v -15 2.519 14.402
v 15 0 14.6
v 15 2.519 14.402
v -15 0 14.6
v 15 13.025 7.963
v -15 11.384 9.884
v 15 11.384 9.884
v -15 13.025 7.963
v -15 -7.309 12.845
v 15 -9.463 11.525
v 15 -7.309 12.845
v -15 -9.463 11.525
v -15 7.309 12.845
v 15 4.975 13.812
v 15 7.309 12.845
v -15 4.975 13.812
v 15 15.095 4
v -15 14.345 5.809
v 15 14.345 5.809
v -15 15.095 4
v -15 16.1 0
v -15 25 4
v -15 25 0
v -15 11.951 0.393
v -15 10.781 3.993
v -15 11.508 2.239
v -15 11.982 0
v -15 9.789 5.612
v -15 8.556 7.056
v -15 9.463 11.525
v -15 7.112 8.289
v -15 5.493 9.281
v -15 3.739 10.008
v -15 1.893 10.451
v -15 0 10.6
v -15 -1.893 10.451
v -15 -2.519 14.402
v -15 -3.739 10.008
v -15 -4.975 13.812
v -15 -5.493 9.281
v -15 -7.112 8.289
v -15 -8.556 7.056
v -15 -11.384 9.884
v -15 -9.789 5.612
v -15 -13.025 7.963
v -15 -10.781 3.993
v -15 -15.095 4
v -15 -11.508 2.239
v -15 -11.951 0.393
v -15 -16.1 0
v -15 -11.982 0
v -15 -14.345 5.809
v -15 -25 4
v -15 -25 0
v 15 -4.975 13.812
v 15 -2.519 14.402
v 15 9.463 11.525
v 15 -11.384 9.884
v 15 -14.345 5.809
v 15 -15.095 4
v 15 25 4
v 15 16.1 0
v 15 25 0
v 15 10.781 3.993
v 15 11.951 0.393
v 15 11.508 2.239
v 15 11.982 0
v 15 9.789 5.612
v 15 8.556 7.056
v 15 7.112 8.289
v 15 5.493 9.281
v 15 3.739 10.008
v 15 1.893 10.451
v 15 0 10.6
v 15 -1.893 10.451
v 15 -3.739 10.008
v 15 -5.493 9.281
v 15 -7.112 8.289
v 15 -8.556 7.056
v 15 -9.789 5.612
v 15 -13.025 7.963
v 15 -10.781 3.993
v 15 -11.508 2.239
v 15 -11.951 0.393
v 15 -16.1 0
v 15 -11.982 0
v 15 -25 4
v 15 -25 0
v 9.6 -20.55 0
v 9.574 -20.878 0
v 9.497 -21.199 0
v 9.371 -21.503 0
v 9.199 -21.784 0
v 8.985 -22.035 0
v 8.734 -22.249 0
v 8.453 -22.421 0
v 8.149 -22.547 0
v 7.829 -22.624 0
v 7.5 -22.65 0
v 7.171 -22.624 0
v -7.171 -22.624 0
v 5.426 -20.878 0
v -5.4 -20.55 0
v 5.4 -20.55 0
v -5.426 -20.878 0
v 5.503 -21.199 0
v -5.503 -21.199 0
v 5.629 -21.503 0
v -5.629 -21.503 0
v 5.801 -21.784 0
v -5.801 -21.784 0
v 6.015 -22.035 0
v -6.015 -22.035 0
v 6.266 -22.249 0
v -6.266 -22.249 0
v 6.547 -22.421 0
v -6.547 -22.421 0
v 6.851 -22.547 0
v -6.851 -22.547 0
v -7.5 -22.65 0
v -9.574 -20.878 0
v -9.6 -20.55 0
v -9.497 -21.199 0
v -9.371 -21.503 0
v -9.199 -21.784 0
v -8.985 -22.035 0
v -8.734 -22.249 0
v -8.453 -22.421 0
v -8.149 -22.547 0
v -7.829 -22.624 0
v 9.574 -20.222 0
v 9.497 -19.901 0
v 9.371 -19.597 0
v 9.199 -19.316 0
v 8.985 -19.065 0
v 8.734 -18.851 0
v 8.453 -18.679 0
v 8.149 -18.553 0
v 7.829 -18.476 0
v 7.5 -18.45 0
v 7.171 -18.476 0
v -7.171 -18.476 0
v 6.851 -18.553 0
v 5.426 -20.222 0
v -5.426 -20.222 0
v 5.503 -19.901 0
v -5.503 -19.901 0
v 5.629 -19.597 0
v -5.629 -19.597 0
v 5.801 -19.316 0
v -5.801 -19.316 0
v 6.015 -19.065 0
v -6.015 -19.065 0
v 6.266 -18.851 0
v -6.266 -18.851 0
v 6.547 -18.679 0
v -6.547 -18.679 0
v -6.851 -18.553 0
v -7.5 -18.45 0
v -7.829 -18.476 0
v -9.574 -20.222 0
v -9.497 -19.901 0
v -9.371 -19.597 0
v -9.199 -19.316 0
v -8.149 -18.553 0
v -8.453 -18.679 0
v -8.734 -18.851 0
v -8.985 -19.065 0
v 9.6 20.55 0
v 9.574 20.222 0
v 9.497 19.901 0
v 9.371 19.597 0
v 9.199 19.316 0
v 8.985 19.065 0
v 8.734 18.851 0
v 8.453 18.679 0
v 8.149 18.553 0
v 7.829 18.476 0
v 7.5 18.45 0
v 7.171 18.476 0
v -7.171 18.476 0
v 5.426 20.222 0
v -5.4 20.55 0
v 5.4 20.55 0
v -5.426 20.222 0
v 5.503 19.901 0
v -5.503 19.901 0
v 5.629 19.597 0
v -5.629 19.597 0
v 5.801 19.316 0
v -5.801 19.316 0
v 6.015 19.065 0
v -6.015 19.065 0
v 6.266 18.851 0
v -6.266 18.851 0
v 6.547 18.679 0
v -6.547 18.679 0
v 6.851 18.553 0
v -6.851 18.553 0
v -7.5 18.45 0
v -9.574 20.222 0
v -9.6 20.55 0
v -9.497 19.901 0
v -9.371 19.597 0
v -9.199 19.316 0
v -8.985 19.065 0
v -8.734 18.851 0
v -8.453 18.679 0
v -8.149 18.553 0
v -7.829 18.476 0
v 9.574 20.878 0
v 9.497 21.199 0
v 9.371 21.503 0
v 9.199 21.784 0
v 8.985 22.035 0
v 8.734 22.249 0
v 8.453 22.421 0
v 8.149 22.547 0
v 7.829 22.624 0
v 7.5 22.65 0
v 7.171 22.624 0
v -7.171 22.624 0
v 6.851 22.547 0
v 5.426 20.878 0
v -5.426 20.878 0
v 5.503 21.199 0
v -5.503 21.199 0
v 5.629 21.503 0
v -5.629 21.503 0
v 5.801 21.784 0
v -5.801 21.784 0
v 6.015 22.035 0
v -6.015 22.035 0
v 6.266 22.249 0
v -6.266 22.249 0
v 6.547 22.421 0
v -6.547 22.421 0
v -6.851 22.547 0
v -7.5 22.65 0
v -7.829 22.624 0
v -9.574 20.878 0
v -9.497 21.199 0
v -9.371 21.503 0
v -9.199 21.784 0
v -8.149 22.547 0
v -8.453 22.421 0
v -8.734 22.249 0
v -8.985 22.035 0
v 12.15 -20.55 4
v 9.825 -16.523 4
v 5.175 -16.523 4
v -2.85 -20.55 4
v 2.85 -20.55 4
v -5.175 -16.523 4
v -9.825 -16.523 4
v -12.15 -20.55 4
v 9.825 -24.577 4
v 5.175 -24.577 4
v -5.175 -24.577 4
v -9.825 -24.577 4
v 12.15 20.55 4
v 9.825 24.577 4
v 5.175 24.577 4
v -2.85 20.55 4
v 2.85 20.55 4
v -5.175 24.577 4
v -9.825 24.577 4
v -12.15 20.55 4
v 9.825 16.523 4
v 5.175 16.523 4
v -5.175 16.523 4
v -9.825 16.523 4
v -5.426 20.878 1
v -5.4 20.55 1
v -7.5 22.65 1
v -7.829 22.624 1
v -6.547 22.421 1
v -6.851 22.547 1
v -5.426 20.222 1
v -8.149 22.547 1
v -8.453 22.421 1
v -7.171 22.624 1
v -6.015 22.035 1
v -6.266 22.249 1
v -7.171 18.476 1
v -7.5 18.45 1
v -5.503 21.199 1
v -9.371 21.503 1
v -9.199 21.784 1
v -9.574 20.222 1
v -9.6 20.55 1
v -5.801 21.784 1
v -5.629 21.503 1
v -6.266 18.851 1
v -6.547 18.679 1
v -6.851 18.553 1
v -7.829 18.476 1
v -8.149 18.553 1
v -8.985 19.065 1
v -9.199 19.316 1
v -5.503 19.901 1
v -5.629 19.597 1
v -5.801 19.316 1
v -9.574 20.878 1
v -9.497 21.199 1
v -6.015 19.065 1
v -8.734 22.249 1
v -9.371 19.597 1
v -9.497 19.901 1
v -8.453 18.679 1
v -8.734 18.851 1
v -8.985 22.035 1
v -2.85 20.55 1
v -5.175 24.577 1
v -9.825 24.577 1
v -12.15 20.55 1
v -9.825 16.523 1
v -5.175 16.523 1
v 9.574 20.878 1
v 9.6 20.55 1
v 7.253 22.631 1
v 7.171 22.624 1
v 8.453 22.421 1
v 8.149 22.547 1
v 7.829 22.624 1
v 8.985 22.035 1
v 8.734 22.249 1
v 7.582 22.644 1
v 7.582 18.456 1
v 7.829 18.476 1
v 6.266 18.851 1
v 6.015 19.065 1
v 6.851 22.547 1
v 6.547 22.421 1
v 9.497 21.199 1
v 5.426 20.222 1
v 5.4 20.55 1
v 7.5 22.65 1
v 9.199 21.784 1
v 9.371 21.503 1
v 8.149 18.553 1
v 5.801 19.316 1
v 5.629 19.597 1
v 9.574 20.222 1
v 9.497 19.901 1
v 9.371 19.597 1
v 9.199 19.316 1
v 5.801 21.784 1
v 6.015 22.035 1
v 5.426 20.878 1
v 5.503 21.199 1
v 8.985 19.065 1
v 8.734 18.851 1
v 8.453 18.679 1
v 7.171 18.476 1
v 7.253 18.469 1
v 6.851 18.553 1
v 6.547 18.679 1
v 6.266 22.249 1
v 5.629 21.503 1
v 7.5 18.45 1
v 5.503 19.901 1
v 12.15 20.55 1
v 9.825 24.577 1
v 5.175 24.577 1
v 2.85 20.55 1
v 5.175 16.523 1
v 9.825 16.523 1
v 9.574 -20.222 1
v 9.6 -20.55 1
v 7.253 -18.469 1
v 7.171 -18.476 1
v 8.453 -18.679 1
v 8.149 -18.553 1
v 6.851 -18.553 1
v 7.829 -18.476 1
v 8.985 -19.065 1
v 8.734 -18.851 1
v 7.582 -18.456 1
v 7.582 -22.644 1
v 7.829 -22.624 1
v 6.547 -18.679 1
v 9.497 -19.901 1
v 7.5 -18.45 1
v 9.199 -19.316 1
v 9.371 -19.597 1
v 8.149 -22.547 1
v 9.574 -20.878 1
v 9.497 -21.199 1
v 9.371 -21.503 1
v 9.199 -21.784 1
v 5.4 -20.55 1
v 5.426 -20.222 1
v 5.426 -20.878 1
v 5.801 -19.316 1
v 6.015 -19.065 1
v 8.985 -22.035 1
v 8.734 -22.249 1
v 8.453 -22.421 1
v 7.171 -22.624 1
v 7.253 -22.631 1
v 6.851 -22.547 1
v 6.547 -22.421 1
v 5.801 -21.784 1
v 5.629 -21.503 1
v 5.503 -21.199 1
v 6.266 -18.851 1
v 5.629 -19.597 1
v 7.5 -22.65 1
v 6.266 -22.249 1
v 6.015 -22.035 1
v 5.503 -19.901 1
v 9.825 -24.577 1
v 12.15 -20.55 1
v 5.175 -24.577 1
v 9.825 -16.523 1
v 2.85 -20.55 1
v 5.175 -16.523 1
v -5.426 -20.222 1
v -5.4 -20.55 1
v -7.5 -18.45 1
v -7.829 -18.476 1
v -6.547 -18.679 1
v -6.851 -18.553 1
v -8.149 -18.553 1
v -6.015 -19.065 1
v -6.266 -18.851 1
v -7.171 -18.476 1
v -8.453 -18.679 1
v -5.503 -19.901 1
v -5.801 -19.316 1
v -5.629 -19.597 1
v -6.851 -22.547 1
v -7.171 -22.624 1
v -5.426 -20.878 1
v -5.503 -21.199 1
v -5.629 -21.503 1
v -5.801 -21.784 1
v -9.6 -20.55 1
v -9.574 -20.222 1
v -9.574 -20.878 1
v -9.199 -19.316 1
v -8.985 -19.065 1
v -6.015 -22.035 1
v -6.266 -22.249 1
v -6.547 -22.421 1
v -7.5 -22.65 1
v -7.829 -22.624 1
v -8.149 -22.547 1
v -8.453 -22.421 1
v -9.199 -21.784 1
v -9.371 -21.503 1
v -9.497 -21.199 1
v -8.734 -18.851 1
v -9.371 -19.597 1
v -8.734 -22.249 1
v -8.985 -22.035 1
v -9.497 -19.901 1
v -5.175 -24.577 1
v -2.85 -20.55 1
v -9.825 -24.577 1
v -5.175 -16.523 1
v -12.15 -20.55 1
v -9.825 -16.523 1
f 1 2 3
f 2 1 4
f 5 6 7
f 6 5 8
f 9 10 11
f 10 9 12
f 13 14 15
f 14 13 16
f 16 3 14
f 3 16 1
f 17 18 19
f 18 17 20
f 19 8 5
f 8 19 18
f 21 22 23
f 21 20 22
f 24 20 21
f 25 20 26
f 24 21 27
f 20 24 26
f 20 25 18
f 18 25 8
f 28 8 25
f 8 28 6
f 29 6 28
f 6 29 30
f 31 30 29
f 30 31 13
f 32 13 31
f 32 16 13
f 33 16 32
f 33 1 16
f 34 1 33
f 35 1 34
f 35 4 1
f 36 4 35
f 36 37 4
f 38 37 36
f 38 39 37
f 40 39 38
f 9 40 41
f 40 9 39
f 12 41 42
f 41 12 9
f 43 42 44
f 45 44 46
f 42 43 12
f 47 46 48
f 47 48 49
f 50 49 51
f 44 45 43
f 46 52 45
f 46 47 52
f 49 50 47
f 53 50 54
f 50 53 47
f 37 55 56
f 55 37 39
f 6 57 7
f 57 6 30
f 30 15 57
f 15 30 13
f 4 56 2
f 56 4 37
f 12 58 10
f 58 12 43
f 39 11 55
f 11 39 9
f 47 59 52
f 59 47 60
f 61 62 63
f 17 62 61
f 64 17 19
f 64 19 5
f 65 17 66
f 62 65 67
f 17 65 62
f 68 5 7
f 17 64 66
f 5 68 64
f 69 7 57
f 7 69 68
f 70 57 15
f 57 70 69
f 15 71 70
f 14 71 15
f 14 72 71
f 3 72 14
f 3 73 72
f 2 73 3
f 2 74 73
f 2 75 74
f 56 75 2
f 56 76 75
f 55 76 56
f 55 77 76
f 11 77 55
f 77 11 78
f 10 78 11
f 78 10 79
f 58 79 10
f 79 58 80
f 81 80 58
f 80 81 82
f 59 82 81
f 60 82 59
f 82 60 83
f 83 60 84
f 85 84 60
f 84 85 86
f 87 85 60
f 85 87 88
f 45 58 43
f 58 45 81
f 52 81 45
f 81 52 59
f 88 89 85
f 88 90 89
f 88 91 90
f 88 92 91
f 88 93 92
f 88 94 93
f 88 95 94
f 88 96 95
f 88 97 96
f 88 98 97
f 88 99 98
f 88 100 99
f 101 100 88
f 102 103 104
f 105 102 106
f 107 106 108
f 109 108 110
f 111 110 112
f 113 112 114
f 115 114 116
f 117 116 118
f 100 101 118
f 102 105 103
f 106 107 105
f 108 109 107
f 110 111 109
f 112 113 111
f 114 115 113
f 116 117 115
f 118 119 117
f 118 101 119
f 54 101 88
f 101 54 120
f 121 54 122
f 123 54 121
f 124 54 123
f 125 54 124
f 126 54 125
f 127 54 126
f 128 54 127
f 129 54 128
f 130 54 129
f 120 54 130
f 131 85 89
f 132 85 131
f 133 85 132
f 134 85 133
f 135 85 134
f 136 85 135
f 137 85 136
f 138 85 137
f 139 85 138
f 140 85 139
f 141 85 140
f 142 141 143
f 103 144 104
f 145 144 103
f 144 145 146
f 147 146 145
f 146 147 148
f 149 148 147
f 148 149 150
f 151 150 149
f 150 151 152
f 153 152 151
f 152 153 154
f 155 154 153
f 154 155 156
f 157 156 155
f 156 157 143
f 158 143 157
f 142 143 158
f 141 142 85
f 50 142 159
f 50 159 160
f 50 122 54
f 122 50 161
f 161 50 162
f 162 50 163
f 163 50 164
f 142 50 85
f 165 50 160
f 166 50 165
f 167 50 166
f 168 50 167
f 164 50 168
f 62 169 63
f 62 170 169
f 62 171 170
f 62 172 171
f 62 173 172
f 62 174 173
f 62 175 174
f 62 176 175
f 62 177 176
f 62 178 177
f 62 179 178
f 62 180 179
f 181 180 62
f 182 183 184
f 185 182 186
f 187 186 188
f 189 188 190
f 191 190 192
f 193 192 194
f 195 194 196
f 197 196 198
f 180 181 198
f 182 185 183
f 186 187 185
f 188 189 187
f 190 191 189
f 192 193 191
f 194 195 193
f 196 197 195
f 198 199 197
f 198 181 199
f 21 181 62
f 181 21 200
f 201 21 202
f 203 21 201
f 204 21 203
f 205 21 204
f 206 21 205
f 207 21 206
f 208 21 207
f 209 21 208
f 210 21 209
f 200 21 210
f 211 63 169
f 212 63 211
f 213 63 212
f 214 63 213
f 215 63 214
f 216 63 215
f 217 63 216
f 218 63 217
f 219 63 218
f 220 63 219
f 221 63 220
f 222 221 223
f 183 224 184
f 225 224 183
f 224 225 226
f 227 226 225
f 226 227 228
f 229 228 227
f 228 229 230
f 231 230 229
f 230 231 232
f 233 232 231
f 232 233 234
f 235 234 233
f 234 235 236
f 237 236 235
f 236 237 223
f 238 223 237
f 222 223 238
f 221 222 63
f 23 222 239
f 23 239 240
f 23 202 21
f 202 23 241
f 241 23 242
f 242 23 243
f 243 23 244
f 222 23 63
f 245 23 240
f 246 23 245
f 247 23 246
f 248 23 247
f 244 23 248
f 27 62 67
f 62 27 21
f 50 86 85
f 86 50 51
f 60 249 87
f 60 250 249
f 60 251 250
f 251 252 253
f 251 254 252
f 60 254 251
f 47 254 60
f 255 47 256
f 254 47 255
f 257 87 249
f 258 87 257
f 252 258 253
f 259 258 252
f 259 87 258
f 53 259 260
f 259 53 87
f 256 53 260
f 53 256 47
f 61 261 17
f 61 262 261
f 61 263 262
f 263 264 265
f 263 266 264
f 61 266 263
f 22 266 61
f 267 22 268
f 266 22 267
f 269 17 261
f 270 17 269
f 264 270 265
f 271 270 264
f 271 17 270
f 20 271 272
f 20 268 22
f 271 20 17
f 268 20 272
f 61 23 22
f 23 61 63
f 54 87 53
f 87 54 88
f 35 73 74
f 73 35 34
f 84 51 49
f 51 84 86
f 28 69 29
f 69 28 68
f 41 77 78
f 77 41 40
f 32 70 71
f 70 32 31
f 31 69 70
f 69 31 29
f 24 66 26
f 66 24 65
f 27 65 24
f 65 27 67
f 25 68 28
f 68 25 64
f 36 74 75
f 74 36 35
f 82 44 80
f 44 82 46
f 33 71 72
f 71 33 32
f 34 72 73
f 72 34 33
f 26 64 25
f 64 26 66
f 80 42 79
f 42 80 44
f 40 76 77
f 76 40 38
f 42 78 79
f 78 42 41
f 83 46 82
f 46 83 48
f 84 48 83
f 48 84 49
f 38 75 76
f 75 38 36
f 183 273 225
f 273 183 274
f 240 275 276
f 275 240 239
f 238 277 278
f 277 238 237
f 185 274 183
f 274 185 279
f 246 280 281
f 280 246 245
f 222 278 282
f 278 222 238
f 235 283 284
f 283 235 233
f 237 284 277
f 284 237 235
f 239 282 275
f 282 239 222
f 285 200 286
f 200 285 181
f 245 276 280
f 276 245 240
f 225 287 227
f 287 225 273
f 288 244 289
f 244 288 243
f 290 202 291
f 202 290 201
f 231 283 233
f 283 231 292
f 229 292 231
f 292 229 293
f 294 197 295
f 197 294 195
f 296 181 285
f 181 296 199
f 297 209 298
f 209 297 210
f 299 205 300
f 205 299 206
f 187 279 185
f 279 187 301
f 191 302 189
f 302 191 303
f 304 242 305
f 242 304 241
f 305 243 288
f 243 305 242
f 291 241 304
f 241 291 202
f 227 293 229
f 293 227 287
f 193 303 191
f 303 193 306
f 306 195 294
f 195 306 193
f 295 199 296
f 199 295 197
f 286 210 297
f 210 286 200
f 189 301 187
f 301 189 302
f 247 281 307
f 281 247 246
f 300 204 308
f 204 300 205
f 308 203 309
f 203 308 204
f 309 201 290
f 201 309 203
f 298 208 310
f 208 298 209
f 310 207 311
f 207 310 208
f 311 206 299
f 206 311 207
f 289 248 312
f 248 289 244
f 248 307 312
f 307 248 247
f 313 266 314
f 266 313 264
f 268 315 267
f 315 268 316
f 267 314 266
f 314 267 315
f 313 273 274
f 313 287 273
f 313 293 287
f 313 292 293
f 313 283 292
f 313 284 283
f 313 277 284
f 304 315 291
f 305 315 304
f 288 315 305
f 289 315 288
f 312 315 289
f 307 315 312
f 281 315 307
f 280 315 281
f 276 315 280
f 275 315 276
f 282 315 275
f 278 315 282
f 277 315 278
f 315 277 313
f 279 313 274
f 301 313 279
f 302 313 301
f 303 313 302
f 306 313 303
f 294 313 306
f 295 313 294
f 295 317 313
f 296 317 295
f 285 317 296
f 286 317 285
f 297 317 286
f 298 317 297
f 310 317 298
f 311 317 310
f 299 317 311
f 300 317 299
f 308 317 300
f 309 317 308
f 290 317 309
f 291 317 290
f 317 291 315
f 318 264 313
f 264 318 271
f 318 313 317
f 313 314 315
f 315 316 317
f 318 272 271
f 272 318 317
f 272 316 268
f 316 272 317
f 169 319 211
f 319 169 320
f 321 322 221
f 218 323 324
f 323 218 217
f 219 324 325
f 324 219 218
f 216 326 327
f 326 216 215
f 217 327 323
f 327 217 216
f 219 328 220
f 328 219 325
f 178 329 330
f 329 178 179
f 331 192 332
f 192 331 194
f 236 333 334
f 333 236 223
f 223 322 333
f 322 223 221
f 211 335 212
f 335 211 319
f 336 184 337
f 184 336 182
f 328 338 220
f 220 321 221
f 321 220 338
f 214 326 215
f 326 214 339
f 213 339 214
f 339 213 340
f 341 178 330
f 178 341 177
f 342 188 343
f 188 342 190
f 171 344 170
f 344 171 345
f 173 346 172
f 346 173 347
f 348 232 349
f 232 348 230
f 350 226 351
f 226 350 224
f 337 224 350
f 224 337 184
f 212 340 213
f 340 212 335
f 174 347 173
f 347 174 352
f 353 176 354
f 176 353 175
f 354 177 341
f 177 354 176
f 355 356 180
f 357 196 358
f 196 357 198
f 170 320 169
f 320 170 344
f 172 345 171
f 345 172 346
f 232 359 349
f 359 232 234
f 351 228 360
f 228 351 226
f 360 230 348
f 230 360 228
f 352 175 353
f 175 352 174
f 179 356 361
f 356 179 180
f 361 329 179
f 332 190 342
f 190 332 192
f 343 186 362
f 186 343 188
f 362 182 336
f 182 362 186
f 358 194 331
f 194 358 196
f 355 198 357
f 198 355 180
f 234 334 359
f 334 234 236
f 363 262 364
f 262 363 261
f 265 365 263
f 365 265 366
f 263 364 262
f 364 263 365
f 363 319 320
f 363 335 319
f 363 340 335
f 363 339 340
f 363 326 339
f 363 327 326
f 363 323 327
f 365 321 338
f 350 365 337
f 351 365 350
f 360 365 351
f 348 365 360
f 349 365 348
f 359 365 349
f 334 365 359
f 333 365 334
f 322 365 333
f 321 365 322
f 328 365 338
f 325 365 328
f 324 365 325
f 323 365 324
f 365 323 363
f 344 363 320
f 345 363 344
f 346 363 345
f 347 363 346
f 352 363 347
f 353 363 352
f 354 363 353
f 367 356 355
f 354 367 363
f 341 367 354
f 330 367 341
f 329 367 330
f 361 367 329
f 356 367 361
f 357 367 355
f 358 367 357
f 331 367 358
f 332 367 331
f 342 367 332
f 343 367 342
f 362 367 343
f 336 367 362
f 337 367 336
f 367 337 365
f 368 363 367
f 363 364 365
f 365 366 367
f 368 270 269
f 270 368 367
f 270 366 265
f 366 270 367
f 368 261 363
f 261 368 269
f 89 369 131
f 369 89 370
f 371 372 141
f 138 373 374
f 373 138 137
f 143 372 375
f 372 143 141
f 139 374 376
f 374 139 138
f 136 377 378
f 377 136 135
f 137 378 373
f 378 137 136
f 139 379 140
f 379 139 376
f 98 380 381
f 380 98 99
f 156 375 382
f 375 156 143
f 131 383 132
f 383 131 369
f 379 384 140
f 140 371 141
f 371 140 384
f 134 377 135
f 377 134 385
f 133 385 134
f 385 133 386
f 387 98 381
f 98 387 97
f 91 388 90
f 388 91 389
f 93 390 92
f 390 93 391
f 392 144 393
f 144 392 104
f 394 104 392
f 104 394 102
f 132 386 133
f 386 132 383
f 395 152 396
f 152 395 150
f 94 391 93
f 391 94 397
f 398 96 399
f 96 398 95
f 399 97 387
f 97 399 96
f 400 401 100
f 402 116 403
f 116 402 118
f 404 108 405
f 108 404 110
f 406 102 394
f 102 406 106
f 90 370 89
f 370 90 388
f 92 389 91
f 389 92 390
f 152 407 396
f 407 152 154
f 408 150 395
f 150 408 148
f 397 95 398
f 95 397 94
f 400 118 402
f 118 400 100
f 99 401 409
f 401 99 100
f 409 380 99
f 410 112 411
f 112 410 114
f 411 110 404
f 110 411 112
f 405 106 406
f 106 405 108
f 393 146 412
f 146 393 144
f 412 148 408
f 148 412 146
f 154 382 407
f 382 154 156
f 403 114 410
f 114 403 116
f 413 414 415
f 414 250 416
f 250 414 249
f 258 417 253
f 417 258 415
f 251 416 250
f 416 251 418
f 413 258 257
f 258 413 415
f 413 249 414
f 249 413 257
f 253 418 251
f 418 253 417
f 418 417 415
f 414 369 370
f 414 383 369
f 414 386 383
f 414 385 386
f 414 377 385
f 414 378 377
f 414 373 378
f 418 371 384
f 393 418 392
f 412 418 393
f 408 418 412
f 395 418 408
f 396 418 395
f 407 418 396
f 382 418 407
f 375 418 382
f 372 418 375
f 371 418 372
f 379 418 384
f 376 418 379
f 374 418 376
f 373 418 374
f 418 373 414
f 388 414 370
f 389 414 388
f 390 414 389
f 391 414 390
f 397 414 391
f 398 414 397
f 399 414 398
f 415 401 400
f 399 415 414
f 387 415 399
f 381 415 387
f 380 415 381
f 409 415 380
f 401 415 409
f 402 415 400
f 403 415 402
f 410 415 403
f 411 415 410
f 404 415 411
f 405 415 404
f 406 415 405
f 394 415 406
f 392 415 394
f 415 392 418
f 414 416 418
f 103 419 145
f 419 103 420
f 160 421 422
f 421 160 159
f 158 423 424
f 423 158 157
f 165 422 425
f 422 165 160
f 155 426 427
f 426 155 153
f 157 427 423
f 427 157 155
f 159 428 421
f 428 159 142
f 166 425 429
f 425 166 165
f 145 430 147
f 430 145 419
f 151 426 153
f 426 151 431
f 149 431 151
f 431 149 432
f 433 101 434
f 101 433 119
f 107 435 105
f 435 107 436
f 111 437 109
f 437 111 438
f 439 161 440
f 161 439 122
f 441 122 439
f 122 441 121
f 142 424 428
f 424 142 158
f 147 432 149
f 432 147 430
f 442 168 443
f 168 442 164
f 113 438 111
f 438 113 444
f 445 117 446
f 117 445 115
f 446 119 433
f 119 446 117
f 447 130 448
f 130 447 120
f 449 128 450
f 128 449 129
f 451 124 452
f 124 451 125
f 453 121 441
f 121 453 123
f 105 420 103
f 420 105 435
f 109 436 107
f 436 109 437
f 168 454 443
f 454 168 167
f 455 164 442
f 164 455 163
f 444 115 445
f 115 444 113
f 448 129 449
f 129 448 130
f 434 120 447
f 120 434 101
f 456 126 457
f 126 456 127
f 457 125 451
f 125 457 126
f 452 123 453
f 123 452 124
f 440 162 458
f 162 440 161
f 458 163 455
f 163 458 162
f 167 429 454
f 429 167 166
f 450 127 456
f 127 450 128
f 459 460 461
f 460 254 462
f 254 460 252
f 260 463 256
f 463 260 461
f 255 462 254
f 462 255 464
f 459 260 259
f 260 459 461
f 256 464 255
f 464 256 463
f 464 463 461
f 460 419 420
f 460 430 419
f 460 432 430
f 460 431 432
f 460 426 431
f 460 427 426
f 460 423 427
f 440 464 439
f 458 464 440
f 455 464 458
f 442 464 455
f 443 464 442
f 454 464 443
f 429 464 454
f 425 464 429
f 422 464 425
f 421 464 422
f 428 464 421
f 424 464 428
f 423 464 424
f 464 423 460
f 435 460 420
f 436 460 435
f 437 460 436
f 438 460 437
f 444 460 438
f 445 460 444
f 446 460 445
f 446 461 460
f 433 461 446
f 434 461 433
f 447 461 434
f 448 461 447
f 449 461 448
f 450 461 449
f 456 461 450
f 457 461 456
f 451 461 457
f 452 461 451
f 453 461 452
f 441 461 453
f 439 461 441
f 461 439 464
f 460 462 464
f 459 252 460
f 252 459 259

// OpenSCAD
// file: ../SRC/ISLHOLDER01A_D04.scad
$fn=40; // model faces resolution.
include <../configuration2.scad>


//Drzak na sloup - cast bez drzaku anemometru
module ISLHOLDER01A_D04(){
	
difference()
    {
    union()
        {
        //základní válec
        cylinder(h=D02_vyska_uchytky,r=(D02_prumer_obruby+2*D02_sila_materialu)/2,center=true);
		//úchytové plošky		
        translate([D02_dotahova_vzdalenost+D02_sila_materialu/2,0,0]){cube([D02_sila_materialu,D02_delka_celeho_uchytu,D02_vyska_uchytky],center=true);}
		}
    
    //válec na odečet
    cylinder(h=D02_vyska_uchytky+0.01,r=D02_prumer_obruby/2,center=true);     
	        
    //kvádr na odecet
	translate([D02_dotahova_vzdalenost-(D02_prumer_obruby+2*D02_sila_materialu)/2,0,0]){cube([D02_prumer_obruby+2*D02_sila_materialu,D02_prumer_obruby+2*D02_sila_materialu,D02_vyska_uchytky+0.01],center=true);}
		
	//otvory na sroub
	translate([D02_dotahova_vzdalenost,(D02_delka_celeho_uchytu/2-D02_prumer_obruby/2-D02_sila_materialu)/2+D02_prumer_obruby/2+D02_sila_materialu,D02_vyska_uchytky/4]){rotate([0,90,0]){cylinder(h=D02_sila_materialu+0.01,r=D02_prumer_uchytneho_sroubu/2);}}
    
     //drzak matky
    translate([D02_dotahova_vzdalenost+D02_sila_materialu-D02_vyska_matky,(D02_delka_celeho_uchytu/2-D02_prumer_obruby/2-D02_sila_materialu)/2+D02_prumer_obruby/2+D02_sila_materialu,D02_vyska_uchytky/4]){rotate([0,90,0]){ cylinder (h = D02_vyska_matky+0.01, r= (D02_sirka_matky+0.2)/2, $fn=6);}}
   
     
        
    translate([D02_dotahova_vzdalenost,(D02_delka_celeho_uchytu/2-D02_prumer_obruby/2-D02_sila_materialu)/2+D02_prumer_obruby/2+D02_sila_materialu,-D02_vyska_uchytky/4]){rotate([0,90,0]){cylinder(h=D02_sila_materialu+0.01,r=D02_prumer_uchytneho_sroubu/2);}}
    
     //drzak matky
    translate([D02_dotahova_vzdalenost+D02_sila_materialu-D02_vyska_matky,(D02_delka_celeho_uchytu/2-D02_prumer_obruby/2-D02_sila_materialu)/2+D02_prumer_obruby/2+D02_sila_materialu,-D02_vyska_uchytky/4]){rotate([0,90,0]){ cylinder (h = D02_vyska_matky+0.01, r= (D02_sirka_matky+0.2)/2, $fn=6);}}
        
	translate([D02_dotahova_vzdalenost,-((D02_delka_celeho_uchytu/2-D02_prumer_obruby/2-D02_sila_materialu)/2+D02_prumer_obruby/2+D02_sila_materialu),-D02_vyska_uchytky/4]){rotate([0,90,0]){cylinder(h=D02_sila_materialu+0.01,r=D02_prumer_uchytneho_sroubu/2);}}
    
     //drzak matky
    translate([D02_dotahova_vzdalenost+D02_sila_materialu-D02_vyska_matky,-((D02_delka_celeho_uchytu/2-D02_prumer_obruby/2-D02_sila_materialu)/2+D02_prumer_obruby/2+D02_sila_materialu),-D02_vyska_uchytky/4]){rotate([0,90,0]){ cylinder (h = D02_vyska_matky+0.01, r= (D02_sirka_matky+0.2)/2, $fn=6);}}

    translate([D02_dotahova_vzdalenost,-((D02_delka_celeho_uchytu/2-D02_prumer_obruby/2-D02_sila_materialu)/2+D02_prumer_obruby/2+D02_sila_materialu),D02_vyska_uchytky/4]){rotate([0,90,0]){cylinder(h=D02_sila_materialu+0.01,r=D02_prumer_uchytneho_sroubu/2);}}	
    
     //drzak matky
    translate([D02_dotahova_vzdalenost+D02_sila_materialu-D02_vyska_matky,-((D02_delka_celeho_uchytu/2-D02_prumer_obruby/2-D02_sila_materialu)/2+D02_prumer_obruby/2+D02_sila_materialu),D02_vyska_uchytky/4]){rotate([0,90,0]){ cylinder (h = D02_vyska_matky+0.01, r= (D02_sirka_matky+0.2)/2, $fn=6);}}
	
    }
}

module ISLHOLDER01A_D04_2(){
	
difference()
    {
    union()
        {
        //základní válec
        cylinder(h=D02_vyska_uchytky,r=(D02_prumer_obruby+2*D02_sila_materialu)/2,center=true);
		//úchytové plošky		
        translate([D02_dotahova_vzdalenost+D02_sila_materialu/2,0,0]){cube([D02_sila_materialu,D02_delka_celeho_uchytu,D02_vyska_uchytky],center=true);}
		}
    
    //válec na odečet
    cylinder(h=D02_vyska_uchytky+0.01,r=D02_prumer_obruby/2,center=true);     
	        
    //kvádr na odecet
	translate([D02_dotahova_vzdalenost-(D02_prumer_obruby+2*D02_sila_materialu)/2,0,0]){cube([D02_prumer_obruby+2*D02_sila_materialu,D02_prumer_obruby+2*D02_sila_materialu,D02_vyska_uchytky+0.01],center=true);}
		
	//otvory na sroub
	translate([D02_dotahova_vzdalenost,(D02_delka_celeho_uchytu/2-D02_prumer_obruby/2-D02_sila_materialu)/2+D02_prumer_obruby/2+D02_sila_materialu,D02_vyska_uchytky/4]){rotate([0,90,0]){cylinder(h=D02_sila_materialu+0.01,r=D02_prumer_uchytneho_sroubu/2);}}
    
    
   
     
        
    translate([D02_dotahova_vzdalenost,(D02_delka_celeho_uchytu/2-D02_prumer_obruby/2-D02_sila_materialu)/2+D02_prumer_obruby/2+D02_sila_materialu,-D02_vyska_uchytky/4]){rotate([0,90,0]){cylinder(h=D02_sila_materialu+0.01,r=D02_prumer_uchytneho_sroubu/2);}}
    
     
        
	translate([D02_dotahova_vzdalenost,-((D02_delka_celeho_uchytu/2-D02_prumer_obruby/2-D02_sila_materialu)/2+D02_prumer_obruby/2+D02_sila_materialu),-D02_vyska_uchytky/4]){rotate([0,90,0]){cylinder(h=D02_sila_materialu+0.01,r=D02_prumer_uchytneho_sroubu/2);}}
    
    

    translate([D02_dotahova_vzdalenost,-((D02_delka_celeho_uchytu/2-D02_prumer_obruby/2-D02_sila_materialu)/2+D02_prumer_obruby/2+D02_sila_materialu),D02_vyska_uchytky/4]){rotate([0,90,0]){cylinder(h=D02_sila_materialu+0.01,r=D02_prumer_uchytneho_sroubu/2);}}	
    
    
	
    }
}


//ISLHOLDER01A_D02();
// file: ../configuration2.scad
$fn=40; // model faces resolution.

//Parametry pro D03 a D04
//Nastavení držáku zkumavky
//----------------------------------------------------------------
//----------------------------------------------------------------
//není potřeba měnit
S01_prumer_vnitrni=40;
S01_tolerance_zavit=1.5;

S01_sila_materialu=1.3; //sila výtuhy

//D03 - uchyt velky
D01_material_pod_zavitem=5;
D01_material_za_zavitem=3;
D01_material_pred_zavitem=2;
D01_delka_tyce=20;
D01_sirka_tyce=15;

//D04 - uchyt na sloup
D02_sila_materialu=4;
D02_vyska_uchytky=30;
D02_prumer_obruby=24.2; //pruměr zkumavky
D02_delka_celeho_uchytu=50;
D02_dotahova_vzdalenost=1.5;
D02_prumer_uchytneho_sroubu=4.2;
D02_sirka_matky=9.1; //pro M4
D02_vyska_matky=3;
// main file
$fn=100; // model faces resolution.
include <../configuration2.scad>
use <../SRC/ISLHOLDER01A_D04.scad>

rotate([0, -90, 0])
    translate([-D02_dotahova_vzdalenost,0,0])
        ISLHOLDER01A_D04();

            
